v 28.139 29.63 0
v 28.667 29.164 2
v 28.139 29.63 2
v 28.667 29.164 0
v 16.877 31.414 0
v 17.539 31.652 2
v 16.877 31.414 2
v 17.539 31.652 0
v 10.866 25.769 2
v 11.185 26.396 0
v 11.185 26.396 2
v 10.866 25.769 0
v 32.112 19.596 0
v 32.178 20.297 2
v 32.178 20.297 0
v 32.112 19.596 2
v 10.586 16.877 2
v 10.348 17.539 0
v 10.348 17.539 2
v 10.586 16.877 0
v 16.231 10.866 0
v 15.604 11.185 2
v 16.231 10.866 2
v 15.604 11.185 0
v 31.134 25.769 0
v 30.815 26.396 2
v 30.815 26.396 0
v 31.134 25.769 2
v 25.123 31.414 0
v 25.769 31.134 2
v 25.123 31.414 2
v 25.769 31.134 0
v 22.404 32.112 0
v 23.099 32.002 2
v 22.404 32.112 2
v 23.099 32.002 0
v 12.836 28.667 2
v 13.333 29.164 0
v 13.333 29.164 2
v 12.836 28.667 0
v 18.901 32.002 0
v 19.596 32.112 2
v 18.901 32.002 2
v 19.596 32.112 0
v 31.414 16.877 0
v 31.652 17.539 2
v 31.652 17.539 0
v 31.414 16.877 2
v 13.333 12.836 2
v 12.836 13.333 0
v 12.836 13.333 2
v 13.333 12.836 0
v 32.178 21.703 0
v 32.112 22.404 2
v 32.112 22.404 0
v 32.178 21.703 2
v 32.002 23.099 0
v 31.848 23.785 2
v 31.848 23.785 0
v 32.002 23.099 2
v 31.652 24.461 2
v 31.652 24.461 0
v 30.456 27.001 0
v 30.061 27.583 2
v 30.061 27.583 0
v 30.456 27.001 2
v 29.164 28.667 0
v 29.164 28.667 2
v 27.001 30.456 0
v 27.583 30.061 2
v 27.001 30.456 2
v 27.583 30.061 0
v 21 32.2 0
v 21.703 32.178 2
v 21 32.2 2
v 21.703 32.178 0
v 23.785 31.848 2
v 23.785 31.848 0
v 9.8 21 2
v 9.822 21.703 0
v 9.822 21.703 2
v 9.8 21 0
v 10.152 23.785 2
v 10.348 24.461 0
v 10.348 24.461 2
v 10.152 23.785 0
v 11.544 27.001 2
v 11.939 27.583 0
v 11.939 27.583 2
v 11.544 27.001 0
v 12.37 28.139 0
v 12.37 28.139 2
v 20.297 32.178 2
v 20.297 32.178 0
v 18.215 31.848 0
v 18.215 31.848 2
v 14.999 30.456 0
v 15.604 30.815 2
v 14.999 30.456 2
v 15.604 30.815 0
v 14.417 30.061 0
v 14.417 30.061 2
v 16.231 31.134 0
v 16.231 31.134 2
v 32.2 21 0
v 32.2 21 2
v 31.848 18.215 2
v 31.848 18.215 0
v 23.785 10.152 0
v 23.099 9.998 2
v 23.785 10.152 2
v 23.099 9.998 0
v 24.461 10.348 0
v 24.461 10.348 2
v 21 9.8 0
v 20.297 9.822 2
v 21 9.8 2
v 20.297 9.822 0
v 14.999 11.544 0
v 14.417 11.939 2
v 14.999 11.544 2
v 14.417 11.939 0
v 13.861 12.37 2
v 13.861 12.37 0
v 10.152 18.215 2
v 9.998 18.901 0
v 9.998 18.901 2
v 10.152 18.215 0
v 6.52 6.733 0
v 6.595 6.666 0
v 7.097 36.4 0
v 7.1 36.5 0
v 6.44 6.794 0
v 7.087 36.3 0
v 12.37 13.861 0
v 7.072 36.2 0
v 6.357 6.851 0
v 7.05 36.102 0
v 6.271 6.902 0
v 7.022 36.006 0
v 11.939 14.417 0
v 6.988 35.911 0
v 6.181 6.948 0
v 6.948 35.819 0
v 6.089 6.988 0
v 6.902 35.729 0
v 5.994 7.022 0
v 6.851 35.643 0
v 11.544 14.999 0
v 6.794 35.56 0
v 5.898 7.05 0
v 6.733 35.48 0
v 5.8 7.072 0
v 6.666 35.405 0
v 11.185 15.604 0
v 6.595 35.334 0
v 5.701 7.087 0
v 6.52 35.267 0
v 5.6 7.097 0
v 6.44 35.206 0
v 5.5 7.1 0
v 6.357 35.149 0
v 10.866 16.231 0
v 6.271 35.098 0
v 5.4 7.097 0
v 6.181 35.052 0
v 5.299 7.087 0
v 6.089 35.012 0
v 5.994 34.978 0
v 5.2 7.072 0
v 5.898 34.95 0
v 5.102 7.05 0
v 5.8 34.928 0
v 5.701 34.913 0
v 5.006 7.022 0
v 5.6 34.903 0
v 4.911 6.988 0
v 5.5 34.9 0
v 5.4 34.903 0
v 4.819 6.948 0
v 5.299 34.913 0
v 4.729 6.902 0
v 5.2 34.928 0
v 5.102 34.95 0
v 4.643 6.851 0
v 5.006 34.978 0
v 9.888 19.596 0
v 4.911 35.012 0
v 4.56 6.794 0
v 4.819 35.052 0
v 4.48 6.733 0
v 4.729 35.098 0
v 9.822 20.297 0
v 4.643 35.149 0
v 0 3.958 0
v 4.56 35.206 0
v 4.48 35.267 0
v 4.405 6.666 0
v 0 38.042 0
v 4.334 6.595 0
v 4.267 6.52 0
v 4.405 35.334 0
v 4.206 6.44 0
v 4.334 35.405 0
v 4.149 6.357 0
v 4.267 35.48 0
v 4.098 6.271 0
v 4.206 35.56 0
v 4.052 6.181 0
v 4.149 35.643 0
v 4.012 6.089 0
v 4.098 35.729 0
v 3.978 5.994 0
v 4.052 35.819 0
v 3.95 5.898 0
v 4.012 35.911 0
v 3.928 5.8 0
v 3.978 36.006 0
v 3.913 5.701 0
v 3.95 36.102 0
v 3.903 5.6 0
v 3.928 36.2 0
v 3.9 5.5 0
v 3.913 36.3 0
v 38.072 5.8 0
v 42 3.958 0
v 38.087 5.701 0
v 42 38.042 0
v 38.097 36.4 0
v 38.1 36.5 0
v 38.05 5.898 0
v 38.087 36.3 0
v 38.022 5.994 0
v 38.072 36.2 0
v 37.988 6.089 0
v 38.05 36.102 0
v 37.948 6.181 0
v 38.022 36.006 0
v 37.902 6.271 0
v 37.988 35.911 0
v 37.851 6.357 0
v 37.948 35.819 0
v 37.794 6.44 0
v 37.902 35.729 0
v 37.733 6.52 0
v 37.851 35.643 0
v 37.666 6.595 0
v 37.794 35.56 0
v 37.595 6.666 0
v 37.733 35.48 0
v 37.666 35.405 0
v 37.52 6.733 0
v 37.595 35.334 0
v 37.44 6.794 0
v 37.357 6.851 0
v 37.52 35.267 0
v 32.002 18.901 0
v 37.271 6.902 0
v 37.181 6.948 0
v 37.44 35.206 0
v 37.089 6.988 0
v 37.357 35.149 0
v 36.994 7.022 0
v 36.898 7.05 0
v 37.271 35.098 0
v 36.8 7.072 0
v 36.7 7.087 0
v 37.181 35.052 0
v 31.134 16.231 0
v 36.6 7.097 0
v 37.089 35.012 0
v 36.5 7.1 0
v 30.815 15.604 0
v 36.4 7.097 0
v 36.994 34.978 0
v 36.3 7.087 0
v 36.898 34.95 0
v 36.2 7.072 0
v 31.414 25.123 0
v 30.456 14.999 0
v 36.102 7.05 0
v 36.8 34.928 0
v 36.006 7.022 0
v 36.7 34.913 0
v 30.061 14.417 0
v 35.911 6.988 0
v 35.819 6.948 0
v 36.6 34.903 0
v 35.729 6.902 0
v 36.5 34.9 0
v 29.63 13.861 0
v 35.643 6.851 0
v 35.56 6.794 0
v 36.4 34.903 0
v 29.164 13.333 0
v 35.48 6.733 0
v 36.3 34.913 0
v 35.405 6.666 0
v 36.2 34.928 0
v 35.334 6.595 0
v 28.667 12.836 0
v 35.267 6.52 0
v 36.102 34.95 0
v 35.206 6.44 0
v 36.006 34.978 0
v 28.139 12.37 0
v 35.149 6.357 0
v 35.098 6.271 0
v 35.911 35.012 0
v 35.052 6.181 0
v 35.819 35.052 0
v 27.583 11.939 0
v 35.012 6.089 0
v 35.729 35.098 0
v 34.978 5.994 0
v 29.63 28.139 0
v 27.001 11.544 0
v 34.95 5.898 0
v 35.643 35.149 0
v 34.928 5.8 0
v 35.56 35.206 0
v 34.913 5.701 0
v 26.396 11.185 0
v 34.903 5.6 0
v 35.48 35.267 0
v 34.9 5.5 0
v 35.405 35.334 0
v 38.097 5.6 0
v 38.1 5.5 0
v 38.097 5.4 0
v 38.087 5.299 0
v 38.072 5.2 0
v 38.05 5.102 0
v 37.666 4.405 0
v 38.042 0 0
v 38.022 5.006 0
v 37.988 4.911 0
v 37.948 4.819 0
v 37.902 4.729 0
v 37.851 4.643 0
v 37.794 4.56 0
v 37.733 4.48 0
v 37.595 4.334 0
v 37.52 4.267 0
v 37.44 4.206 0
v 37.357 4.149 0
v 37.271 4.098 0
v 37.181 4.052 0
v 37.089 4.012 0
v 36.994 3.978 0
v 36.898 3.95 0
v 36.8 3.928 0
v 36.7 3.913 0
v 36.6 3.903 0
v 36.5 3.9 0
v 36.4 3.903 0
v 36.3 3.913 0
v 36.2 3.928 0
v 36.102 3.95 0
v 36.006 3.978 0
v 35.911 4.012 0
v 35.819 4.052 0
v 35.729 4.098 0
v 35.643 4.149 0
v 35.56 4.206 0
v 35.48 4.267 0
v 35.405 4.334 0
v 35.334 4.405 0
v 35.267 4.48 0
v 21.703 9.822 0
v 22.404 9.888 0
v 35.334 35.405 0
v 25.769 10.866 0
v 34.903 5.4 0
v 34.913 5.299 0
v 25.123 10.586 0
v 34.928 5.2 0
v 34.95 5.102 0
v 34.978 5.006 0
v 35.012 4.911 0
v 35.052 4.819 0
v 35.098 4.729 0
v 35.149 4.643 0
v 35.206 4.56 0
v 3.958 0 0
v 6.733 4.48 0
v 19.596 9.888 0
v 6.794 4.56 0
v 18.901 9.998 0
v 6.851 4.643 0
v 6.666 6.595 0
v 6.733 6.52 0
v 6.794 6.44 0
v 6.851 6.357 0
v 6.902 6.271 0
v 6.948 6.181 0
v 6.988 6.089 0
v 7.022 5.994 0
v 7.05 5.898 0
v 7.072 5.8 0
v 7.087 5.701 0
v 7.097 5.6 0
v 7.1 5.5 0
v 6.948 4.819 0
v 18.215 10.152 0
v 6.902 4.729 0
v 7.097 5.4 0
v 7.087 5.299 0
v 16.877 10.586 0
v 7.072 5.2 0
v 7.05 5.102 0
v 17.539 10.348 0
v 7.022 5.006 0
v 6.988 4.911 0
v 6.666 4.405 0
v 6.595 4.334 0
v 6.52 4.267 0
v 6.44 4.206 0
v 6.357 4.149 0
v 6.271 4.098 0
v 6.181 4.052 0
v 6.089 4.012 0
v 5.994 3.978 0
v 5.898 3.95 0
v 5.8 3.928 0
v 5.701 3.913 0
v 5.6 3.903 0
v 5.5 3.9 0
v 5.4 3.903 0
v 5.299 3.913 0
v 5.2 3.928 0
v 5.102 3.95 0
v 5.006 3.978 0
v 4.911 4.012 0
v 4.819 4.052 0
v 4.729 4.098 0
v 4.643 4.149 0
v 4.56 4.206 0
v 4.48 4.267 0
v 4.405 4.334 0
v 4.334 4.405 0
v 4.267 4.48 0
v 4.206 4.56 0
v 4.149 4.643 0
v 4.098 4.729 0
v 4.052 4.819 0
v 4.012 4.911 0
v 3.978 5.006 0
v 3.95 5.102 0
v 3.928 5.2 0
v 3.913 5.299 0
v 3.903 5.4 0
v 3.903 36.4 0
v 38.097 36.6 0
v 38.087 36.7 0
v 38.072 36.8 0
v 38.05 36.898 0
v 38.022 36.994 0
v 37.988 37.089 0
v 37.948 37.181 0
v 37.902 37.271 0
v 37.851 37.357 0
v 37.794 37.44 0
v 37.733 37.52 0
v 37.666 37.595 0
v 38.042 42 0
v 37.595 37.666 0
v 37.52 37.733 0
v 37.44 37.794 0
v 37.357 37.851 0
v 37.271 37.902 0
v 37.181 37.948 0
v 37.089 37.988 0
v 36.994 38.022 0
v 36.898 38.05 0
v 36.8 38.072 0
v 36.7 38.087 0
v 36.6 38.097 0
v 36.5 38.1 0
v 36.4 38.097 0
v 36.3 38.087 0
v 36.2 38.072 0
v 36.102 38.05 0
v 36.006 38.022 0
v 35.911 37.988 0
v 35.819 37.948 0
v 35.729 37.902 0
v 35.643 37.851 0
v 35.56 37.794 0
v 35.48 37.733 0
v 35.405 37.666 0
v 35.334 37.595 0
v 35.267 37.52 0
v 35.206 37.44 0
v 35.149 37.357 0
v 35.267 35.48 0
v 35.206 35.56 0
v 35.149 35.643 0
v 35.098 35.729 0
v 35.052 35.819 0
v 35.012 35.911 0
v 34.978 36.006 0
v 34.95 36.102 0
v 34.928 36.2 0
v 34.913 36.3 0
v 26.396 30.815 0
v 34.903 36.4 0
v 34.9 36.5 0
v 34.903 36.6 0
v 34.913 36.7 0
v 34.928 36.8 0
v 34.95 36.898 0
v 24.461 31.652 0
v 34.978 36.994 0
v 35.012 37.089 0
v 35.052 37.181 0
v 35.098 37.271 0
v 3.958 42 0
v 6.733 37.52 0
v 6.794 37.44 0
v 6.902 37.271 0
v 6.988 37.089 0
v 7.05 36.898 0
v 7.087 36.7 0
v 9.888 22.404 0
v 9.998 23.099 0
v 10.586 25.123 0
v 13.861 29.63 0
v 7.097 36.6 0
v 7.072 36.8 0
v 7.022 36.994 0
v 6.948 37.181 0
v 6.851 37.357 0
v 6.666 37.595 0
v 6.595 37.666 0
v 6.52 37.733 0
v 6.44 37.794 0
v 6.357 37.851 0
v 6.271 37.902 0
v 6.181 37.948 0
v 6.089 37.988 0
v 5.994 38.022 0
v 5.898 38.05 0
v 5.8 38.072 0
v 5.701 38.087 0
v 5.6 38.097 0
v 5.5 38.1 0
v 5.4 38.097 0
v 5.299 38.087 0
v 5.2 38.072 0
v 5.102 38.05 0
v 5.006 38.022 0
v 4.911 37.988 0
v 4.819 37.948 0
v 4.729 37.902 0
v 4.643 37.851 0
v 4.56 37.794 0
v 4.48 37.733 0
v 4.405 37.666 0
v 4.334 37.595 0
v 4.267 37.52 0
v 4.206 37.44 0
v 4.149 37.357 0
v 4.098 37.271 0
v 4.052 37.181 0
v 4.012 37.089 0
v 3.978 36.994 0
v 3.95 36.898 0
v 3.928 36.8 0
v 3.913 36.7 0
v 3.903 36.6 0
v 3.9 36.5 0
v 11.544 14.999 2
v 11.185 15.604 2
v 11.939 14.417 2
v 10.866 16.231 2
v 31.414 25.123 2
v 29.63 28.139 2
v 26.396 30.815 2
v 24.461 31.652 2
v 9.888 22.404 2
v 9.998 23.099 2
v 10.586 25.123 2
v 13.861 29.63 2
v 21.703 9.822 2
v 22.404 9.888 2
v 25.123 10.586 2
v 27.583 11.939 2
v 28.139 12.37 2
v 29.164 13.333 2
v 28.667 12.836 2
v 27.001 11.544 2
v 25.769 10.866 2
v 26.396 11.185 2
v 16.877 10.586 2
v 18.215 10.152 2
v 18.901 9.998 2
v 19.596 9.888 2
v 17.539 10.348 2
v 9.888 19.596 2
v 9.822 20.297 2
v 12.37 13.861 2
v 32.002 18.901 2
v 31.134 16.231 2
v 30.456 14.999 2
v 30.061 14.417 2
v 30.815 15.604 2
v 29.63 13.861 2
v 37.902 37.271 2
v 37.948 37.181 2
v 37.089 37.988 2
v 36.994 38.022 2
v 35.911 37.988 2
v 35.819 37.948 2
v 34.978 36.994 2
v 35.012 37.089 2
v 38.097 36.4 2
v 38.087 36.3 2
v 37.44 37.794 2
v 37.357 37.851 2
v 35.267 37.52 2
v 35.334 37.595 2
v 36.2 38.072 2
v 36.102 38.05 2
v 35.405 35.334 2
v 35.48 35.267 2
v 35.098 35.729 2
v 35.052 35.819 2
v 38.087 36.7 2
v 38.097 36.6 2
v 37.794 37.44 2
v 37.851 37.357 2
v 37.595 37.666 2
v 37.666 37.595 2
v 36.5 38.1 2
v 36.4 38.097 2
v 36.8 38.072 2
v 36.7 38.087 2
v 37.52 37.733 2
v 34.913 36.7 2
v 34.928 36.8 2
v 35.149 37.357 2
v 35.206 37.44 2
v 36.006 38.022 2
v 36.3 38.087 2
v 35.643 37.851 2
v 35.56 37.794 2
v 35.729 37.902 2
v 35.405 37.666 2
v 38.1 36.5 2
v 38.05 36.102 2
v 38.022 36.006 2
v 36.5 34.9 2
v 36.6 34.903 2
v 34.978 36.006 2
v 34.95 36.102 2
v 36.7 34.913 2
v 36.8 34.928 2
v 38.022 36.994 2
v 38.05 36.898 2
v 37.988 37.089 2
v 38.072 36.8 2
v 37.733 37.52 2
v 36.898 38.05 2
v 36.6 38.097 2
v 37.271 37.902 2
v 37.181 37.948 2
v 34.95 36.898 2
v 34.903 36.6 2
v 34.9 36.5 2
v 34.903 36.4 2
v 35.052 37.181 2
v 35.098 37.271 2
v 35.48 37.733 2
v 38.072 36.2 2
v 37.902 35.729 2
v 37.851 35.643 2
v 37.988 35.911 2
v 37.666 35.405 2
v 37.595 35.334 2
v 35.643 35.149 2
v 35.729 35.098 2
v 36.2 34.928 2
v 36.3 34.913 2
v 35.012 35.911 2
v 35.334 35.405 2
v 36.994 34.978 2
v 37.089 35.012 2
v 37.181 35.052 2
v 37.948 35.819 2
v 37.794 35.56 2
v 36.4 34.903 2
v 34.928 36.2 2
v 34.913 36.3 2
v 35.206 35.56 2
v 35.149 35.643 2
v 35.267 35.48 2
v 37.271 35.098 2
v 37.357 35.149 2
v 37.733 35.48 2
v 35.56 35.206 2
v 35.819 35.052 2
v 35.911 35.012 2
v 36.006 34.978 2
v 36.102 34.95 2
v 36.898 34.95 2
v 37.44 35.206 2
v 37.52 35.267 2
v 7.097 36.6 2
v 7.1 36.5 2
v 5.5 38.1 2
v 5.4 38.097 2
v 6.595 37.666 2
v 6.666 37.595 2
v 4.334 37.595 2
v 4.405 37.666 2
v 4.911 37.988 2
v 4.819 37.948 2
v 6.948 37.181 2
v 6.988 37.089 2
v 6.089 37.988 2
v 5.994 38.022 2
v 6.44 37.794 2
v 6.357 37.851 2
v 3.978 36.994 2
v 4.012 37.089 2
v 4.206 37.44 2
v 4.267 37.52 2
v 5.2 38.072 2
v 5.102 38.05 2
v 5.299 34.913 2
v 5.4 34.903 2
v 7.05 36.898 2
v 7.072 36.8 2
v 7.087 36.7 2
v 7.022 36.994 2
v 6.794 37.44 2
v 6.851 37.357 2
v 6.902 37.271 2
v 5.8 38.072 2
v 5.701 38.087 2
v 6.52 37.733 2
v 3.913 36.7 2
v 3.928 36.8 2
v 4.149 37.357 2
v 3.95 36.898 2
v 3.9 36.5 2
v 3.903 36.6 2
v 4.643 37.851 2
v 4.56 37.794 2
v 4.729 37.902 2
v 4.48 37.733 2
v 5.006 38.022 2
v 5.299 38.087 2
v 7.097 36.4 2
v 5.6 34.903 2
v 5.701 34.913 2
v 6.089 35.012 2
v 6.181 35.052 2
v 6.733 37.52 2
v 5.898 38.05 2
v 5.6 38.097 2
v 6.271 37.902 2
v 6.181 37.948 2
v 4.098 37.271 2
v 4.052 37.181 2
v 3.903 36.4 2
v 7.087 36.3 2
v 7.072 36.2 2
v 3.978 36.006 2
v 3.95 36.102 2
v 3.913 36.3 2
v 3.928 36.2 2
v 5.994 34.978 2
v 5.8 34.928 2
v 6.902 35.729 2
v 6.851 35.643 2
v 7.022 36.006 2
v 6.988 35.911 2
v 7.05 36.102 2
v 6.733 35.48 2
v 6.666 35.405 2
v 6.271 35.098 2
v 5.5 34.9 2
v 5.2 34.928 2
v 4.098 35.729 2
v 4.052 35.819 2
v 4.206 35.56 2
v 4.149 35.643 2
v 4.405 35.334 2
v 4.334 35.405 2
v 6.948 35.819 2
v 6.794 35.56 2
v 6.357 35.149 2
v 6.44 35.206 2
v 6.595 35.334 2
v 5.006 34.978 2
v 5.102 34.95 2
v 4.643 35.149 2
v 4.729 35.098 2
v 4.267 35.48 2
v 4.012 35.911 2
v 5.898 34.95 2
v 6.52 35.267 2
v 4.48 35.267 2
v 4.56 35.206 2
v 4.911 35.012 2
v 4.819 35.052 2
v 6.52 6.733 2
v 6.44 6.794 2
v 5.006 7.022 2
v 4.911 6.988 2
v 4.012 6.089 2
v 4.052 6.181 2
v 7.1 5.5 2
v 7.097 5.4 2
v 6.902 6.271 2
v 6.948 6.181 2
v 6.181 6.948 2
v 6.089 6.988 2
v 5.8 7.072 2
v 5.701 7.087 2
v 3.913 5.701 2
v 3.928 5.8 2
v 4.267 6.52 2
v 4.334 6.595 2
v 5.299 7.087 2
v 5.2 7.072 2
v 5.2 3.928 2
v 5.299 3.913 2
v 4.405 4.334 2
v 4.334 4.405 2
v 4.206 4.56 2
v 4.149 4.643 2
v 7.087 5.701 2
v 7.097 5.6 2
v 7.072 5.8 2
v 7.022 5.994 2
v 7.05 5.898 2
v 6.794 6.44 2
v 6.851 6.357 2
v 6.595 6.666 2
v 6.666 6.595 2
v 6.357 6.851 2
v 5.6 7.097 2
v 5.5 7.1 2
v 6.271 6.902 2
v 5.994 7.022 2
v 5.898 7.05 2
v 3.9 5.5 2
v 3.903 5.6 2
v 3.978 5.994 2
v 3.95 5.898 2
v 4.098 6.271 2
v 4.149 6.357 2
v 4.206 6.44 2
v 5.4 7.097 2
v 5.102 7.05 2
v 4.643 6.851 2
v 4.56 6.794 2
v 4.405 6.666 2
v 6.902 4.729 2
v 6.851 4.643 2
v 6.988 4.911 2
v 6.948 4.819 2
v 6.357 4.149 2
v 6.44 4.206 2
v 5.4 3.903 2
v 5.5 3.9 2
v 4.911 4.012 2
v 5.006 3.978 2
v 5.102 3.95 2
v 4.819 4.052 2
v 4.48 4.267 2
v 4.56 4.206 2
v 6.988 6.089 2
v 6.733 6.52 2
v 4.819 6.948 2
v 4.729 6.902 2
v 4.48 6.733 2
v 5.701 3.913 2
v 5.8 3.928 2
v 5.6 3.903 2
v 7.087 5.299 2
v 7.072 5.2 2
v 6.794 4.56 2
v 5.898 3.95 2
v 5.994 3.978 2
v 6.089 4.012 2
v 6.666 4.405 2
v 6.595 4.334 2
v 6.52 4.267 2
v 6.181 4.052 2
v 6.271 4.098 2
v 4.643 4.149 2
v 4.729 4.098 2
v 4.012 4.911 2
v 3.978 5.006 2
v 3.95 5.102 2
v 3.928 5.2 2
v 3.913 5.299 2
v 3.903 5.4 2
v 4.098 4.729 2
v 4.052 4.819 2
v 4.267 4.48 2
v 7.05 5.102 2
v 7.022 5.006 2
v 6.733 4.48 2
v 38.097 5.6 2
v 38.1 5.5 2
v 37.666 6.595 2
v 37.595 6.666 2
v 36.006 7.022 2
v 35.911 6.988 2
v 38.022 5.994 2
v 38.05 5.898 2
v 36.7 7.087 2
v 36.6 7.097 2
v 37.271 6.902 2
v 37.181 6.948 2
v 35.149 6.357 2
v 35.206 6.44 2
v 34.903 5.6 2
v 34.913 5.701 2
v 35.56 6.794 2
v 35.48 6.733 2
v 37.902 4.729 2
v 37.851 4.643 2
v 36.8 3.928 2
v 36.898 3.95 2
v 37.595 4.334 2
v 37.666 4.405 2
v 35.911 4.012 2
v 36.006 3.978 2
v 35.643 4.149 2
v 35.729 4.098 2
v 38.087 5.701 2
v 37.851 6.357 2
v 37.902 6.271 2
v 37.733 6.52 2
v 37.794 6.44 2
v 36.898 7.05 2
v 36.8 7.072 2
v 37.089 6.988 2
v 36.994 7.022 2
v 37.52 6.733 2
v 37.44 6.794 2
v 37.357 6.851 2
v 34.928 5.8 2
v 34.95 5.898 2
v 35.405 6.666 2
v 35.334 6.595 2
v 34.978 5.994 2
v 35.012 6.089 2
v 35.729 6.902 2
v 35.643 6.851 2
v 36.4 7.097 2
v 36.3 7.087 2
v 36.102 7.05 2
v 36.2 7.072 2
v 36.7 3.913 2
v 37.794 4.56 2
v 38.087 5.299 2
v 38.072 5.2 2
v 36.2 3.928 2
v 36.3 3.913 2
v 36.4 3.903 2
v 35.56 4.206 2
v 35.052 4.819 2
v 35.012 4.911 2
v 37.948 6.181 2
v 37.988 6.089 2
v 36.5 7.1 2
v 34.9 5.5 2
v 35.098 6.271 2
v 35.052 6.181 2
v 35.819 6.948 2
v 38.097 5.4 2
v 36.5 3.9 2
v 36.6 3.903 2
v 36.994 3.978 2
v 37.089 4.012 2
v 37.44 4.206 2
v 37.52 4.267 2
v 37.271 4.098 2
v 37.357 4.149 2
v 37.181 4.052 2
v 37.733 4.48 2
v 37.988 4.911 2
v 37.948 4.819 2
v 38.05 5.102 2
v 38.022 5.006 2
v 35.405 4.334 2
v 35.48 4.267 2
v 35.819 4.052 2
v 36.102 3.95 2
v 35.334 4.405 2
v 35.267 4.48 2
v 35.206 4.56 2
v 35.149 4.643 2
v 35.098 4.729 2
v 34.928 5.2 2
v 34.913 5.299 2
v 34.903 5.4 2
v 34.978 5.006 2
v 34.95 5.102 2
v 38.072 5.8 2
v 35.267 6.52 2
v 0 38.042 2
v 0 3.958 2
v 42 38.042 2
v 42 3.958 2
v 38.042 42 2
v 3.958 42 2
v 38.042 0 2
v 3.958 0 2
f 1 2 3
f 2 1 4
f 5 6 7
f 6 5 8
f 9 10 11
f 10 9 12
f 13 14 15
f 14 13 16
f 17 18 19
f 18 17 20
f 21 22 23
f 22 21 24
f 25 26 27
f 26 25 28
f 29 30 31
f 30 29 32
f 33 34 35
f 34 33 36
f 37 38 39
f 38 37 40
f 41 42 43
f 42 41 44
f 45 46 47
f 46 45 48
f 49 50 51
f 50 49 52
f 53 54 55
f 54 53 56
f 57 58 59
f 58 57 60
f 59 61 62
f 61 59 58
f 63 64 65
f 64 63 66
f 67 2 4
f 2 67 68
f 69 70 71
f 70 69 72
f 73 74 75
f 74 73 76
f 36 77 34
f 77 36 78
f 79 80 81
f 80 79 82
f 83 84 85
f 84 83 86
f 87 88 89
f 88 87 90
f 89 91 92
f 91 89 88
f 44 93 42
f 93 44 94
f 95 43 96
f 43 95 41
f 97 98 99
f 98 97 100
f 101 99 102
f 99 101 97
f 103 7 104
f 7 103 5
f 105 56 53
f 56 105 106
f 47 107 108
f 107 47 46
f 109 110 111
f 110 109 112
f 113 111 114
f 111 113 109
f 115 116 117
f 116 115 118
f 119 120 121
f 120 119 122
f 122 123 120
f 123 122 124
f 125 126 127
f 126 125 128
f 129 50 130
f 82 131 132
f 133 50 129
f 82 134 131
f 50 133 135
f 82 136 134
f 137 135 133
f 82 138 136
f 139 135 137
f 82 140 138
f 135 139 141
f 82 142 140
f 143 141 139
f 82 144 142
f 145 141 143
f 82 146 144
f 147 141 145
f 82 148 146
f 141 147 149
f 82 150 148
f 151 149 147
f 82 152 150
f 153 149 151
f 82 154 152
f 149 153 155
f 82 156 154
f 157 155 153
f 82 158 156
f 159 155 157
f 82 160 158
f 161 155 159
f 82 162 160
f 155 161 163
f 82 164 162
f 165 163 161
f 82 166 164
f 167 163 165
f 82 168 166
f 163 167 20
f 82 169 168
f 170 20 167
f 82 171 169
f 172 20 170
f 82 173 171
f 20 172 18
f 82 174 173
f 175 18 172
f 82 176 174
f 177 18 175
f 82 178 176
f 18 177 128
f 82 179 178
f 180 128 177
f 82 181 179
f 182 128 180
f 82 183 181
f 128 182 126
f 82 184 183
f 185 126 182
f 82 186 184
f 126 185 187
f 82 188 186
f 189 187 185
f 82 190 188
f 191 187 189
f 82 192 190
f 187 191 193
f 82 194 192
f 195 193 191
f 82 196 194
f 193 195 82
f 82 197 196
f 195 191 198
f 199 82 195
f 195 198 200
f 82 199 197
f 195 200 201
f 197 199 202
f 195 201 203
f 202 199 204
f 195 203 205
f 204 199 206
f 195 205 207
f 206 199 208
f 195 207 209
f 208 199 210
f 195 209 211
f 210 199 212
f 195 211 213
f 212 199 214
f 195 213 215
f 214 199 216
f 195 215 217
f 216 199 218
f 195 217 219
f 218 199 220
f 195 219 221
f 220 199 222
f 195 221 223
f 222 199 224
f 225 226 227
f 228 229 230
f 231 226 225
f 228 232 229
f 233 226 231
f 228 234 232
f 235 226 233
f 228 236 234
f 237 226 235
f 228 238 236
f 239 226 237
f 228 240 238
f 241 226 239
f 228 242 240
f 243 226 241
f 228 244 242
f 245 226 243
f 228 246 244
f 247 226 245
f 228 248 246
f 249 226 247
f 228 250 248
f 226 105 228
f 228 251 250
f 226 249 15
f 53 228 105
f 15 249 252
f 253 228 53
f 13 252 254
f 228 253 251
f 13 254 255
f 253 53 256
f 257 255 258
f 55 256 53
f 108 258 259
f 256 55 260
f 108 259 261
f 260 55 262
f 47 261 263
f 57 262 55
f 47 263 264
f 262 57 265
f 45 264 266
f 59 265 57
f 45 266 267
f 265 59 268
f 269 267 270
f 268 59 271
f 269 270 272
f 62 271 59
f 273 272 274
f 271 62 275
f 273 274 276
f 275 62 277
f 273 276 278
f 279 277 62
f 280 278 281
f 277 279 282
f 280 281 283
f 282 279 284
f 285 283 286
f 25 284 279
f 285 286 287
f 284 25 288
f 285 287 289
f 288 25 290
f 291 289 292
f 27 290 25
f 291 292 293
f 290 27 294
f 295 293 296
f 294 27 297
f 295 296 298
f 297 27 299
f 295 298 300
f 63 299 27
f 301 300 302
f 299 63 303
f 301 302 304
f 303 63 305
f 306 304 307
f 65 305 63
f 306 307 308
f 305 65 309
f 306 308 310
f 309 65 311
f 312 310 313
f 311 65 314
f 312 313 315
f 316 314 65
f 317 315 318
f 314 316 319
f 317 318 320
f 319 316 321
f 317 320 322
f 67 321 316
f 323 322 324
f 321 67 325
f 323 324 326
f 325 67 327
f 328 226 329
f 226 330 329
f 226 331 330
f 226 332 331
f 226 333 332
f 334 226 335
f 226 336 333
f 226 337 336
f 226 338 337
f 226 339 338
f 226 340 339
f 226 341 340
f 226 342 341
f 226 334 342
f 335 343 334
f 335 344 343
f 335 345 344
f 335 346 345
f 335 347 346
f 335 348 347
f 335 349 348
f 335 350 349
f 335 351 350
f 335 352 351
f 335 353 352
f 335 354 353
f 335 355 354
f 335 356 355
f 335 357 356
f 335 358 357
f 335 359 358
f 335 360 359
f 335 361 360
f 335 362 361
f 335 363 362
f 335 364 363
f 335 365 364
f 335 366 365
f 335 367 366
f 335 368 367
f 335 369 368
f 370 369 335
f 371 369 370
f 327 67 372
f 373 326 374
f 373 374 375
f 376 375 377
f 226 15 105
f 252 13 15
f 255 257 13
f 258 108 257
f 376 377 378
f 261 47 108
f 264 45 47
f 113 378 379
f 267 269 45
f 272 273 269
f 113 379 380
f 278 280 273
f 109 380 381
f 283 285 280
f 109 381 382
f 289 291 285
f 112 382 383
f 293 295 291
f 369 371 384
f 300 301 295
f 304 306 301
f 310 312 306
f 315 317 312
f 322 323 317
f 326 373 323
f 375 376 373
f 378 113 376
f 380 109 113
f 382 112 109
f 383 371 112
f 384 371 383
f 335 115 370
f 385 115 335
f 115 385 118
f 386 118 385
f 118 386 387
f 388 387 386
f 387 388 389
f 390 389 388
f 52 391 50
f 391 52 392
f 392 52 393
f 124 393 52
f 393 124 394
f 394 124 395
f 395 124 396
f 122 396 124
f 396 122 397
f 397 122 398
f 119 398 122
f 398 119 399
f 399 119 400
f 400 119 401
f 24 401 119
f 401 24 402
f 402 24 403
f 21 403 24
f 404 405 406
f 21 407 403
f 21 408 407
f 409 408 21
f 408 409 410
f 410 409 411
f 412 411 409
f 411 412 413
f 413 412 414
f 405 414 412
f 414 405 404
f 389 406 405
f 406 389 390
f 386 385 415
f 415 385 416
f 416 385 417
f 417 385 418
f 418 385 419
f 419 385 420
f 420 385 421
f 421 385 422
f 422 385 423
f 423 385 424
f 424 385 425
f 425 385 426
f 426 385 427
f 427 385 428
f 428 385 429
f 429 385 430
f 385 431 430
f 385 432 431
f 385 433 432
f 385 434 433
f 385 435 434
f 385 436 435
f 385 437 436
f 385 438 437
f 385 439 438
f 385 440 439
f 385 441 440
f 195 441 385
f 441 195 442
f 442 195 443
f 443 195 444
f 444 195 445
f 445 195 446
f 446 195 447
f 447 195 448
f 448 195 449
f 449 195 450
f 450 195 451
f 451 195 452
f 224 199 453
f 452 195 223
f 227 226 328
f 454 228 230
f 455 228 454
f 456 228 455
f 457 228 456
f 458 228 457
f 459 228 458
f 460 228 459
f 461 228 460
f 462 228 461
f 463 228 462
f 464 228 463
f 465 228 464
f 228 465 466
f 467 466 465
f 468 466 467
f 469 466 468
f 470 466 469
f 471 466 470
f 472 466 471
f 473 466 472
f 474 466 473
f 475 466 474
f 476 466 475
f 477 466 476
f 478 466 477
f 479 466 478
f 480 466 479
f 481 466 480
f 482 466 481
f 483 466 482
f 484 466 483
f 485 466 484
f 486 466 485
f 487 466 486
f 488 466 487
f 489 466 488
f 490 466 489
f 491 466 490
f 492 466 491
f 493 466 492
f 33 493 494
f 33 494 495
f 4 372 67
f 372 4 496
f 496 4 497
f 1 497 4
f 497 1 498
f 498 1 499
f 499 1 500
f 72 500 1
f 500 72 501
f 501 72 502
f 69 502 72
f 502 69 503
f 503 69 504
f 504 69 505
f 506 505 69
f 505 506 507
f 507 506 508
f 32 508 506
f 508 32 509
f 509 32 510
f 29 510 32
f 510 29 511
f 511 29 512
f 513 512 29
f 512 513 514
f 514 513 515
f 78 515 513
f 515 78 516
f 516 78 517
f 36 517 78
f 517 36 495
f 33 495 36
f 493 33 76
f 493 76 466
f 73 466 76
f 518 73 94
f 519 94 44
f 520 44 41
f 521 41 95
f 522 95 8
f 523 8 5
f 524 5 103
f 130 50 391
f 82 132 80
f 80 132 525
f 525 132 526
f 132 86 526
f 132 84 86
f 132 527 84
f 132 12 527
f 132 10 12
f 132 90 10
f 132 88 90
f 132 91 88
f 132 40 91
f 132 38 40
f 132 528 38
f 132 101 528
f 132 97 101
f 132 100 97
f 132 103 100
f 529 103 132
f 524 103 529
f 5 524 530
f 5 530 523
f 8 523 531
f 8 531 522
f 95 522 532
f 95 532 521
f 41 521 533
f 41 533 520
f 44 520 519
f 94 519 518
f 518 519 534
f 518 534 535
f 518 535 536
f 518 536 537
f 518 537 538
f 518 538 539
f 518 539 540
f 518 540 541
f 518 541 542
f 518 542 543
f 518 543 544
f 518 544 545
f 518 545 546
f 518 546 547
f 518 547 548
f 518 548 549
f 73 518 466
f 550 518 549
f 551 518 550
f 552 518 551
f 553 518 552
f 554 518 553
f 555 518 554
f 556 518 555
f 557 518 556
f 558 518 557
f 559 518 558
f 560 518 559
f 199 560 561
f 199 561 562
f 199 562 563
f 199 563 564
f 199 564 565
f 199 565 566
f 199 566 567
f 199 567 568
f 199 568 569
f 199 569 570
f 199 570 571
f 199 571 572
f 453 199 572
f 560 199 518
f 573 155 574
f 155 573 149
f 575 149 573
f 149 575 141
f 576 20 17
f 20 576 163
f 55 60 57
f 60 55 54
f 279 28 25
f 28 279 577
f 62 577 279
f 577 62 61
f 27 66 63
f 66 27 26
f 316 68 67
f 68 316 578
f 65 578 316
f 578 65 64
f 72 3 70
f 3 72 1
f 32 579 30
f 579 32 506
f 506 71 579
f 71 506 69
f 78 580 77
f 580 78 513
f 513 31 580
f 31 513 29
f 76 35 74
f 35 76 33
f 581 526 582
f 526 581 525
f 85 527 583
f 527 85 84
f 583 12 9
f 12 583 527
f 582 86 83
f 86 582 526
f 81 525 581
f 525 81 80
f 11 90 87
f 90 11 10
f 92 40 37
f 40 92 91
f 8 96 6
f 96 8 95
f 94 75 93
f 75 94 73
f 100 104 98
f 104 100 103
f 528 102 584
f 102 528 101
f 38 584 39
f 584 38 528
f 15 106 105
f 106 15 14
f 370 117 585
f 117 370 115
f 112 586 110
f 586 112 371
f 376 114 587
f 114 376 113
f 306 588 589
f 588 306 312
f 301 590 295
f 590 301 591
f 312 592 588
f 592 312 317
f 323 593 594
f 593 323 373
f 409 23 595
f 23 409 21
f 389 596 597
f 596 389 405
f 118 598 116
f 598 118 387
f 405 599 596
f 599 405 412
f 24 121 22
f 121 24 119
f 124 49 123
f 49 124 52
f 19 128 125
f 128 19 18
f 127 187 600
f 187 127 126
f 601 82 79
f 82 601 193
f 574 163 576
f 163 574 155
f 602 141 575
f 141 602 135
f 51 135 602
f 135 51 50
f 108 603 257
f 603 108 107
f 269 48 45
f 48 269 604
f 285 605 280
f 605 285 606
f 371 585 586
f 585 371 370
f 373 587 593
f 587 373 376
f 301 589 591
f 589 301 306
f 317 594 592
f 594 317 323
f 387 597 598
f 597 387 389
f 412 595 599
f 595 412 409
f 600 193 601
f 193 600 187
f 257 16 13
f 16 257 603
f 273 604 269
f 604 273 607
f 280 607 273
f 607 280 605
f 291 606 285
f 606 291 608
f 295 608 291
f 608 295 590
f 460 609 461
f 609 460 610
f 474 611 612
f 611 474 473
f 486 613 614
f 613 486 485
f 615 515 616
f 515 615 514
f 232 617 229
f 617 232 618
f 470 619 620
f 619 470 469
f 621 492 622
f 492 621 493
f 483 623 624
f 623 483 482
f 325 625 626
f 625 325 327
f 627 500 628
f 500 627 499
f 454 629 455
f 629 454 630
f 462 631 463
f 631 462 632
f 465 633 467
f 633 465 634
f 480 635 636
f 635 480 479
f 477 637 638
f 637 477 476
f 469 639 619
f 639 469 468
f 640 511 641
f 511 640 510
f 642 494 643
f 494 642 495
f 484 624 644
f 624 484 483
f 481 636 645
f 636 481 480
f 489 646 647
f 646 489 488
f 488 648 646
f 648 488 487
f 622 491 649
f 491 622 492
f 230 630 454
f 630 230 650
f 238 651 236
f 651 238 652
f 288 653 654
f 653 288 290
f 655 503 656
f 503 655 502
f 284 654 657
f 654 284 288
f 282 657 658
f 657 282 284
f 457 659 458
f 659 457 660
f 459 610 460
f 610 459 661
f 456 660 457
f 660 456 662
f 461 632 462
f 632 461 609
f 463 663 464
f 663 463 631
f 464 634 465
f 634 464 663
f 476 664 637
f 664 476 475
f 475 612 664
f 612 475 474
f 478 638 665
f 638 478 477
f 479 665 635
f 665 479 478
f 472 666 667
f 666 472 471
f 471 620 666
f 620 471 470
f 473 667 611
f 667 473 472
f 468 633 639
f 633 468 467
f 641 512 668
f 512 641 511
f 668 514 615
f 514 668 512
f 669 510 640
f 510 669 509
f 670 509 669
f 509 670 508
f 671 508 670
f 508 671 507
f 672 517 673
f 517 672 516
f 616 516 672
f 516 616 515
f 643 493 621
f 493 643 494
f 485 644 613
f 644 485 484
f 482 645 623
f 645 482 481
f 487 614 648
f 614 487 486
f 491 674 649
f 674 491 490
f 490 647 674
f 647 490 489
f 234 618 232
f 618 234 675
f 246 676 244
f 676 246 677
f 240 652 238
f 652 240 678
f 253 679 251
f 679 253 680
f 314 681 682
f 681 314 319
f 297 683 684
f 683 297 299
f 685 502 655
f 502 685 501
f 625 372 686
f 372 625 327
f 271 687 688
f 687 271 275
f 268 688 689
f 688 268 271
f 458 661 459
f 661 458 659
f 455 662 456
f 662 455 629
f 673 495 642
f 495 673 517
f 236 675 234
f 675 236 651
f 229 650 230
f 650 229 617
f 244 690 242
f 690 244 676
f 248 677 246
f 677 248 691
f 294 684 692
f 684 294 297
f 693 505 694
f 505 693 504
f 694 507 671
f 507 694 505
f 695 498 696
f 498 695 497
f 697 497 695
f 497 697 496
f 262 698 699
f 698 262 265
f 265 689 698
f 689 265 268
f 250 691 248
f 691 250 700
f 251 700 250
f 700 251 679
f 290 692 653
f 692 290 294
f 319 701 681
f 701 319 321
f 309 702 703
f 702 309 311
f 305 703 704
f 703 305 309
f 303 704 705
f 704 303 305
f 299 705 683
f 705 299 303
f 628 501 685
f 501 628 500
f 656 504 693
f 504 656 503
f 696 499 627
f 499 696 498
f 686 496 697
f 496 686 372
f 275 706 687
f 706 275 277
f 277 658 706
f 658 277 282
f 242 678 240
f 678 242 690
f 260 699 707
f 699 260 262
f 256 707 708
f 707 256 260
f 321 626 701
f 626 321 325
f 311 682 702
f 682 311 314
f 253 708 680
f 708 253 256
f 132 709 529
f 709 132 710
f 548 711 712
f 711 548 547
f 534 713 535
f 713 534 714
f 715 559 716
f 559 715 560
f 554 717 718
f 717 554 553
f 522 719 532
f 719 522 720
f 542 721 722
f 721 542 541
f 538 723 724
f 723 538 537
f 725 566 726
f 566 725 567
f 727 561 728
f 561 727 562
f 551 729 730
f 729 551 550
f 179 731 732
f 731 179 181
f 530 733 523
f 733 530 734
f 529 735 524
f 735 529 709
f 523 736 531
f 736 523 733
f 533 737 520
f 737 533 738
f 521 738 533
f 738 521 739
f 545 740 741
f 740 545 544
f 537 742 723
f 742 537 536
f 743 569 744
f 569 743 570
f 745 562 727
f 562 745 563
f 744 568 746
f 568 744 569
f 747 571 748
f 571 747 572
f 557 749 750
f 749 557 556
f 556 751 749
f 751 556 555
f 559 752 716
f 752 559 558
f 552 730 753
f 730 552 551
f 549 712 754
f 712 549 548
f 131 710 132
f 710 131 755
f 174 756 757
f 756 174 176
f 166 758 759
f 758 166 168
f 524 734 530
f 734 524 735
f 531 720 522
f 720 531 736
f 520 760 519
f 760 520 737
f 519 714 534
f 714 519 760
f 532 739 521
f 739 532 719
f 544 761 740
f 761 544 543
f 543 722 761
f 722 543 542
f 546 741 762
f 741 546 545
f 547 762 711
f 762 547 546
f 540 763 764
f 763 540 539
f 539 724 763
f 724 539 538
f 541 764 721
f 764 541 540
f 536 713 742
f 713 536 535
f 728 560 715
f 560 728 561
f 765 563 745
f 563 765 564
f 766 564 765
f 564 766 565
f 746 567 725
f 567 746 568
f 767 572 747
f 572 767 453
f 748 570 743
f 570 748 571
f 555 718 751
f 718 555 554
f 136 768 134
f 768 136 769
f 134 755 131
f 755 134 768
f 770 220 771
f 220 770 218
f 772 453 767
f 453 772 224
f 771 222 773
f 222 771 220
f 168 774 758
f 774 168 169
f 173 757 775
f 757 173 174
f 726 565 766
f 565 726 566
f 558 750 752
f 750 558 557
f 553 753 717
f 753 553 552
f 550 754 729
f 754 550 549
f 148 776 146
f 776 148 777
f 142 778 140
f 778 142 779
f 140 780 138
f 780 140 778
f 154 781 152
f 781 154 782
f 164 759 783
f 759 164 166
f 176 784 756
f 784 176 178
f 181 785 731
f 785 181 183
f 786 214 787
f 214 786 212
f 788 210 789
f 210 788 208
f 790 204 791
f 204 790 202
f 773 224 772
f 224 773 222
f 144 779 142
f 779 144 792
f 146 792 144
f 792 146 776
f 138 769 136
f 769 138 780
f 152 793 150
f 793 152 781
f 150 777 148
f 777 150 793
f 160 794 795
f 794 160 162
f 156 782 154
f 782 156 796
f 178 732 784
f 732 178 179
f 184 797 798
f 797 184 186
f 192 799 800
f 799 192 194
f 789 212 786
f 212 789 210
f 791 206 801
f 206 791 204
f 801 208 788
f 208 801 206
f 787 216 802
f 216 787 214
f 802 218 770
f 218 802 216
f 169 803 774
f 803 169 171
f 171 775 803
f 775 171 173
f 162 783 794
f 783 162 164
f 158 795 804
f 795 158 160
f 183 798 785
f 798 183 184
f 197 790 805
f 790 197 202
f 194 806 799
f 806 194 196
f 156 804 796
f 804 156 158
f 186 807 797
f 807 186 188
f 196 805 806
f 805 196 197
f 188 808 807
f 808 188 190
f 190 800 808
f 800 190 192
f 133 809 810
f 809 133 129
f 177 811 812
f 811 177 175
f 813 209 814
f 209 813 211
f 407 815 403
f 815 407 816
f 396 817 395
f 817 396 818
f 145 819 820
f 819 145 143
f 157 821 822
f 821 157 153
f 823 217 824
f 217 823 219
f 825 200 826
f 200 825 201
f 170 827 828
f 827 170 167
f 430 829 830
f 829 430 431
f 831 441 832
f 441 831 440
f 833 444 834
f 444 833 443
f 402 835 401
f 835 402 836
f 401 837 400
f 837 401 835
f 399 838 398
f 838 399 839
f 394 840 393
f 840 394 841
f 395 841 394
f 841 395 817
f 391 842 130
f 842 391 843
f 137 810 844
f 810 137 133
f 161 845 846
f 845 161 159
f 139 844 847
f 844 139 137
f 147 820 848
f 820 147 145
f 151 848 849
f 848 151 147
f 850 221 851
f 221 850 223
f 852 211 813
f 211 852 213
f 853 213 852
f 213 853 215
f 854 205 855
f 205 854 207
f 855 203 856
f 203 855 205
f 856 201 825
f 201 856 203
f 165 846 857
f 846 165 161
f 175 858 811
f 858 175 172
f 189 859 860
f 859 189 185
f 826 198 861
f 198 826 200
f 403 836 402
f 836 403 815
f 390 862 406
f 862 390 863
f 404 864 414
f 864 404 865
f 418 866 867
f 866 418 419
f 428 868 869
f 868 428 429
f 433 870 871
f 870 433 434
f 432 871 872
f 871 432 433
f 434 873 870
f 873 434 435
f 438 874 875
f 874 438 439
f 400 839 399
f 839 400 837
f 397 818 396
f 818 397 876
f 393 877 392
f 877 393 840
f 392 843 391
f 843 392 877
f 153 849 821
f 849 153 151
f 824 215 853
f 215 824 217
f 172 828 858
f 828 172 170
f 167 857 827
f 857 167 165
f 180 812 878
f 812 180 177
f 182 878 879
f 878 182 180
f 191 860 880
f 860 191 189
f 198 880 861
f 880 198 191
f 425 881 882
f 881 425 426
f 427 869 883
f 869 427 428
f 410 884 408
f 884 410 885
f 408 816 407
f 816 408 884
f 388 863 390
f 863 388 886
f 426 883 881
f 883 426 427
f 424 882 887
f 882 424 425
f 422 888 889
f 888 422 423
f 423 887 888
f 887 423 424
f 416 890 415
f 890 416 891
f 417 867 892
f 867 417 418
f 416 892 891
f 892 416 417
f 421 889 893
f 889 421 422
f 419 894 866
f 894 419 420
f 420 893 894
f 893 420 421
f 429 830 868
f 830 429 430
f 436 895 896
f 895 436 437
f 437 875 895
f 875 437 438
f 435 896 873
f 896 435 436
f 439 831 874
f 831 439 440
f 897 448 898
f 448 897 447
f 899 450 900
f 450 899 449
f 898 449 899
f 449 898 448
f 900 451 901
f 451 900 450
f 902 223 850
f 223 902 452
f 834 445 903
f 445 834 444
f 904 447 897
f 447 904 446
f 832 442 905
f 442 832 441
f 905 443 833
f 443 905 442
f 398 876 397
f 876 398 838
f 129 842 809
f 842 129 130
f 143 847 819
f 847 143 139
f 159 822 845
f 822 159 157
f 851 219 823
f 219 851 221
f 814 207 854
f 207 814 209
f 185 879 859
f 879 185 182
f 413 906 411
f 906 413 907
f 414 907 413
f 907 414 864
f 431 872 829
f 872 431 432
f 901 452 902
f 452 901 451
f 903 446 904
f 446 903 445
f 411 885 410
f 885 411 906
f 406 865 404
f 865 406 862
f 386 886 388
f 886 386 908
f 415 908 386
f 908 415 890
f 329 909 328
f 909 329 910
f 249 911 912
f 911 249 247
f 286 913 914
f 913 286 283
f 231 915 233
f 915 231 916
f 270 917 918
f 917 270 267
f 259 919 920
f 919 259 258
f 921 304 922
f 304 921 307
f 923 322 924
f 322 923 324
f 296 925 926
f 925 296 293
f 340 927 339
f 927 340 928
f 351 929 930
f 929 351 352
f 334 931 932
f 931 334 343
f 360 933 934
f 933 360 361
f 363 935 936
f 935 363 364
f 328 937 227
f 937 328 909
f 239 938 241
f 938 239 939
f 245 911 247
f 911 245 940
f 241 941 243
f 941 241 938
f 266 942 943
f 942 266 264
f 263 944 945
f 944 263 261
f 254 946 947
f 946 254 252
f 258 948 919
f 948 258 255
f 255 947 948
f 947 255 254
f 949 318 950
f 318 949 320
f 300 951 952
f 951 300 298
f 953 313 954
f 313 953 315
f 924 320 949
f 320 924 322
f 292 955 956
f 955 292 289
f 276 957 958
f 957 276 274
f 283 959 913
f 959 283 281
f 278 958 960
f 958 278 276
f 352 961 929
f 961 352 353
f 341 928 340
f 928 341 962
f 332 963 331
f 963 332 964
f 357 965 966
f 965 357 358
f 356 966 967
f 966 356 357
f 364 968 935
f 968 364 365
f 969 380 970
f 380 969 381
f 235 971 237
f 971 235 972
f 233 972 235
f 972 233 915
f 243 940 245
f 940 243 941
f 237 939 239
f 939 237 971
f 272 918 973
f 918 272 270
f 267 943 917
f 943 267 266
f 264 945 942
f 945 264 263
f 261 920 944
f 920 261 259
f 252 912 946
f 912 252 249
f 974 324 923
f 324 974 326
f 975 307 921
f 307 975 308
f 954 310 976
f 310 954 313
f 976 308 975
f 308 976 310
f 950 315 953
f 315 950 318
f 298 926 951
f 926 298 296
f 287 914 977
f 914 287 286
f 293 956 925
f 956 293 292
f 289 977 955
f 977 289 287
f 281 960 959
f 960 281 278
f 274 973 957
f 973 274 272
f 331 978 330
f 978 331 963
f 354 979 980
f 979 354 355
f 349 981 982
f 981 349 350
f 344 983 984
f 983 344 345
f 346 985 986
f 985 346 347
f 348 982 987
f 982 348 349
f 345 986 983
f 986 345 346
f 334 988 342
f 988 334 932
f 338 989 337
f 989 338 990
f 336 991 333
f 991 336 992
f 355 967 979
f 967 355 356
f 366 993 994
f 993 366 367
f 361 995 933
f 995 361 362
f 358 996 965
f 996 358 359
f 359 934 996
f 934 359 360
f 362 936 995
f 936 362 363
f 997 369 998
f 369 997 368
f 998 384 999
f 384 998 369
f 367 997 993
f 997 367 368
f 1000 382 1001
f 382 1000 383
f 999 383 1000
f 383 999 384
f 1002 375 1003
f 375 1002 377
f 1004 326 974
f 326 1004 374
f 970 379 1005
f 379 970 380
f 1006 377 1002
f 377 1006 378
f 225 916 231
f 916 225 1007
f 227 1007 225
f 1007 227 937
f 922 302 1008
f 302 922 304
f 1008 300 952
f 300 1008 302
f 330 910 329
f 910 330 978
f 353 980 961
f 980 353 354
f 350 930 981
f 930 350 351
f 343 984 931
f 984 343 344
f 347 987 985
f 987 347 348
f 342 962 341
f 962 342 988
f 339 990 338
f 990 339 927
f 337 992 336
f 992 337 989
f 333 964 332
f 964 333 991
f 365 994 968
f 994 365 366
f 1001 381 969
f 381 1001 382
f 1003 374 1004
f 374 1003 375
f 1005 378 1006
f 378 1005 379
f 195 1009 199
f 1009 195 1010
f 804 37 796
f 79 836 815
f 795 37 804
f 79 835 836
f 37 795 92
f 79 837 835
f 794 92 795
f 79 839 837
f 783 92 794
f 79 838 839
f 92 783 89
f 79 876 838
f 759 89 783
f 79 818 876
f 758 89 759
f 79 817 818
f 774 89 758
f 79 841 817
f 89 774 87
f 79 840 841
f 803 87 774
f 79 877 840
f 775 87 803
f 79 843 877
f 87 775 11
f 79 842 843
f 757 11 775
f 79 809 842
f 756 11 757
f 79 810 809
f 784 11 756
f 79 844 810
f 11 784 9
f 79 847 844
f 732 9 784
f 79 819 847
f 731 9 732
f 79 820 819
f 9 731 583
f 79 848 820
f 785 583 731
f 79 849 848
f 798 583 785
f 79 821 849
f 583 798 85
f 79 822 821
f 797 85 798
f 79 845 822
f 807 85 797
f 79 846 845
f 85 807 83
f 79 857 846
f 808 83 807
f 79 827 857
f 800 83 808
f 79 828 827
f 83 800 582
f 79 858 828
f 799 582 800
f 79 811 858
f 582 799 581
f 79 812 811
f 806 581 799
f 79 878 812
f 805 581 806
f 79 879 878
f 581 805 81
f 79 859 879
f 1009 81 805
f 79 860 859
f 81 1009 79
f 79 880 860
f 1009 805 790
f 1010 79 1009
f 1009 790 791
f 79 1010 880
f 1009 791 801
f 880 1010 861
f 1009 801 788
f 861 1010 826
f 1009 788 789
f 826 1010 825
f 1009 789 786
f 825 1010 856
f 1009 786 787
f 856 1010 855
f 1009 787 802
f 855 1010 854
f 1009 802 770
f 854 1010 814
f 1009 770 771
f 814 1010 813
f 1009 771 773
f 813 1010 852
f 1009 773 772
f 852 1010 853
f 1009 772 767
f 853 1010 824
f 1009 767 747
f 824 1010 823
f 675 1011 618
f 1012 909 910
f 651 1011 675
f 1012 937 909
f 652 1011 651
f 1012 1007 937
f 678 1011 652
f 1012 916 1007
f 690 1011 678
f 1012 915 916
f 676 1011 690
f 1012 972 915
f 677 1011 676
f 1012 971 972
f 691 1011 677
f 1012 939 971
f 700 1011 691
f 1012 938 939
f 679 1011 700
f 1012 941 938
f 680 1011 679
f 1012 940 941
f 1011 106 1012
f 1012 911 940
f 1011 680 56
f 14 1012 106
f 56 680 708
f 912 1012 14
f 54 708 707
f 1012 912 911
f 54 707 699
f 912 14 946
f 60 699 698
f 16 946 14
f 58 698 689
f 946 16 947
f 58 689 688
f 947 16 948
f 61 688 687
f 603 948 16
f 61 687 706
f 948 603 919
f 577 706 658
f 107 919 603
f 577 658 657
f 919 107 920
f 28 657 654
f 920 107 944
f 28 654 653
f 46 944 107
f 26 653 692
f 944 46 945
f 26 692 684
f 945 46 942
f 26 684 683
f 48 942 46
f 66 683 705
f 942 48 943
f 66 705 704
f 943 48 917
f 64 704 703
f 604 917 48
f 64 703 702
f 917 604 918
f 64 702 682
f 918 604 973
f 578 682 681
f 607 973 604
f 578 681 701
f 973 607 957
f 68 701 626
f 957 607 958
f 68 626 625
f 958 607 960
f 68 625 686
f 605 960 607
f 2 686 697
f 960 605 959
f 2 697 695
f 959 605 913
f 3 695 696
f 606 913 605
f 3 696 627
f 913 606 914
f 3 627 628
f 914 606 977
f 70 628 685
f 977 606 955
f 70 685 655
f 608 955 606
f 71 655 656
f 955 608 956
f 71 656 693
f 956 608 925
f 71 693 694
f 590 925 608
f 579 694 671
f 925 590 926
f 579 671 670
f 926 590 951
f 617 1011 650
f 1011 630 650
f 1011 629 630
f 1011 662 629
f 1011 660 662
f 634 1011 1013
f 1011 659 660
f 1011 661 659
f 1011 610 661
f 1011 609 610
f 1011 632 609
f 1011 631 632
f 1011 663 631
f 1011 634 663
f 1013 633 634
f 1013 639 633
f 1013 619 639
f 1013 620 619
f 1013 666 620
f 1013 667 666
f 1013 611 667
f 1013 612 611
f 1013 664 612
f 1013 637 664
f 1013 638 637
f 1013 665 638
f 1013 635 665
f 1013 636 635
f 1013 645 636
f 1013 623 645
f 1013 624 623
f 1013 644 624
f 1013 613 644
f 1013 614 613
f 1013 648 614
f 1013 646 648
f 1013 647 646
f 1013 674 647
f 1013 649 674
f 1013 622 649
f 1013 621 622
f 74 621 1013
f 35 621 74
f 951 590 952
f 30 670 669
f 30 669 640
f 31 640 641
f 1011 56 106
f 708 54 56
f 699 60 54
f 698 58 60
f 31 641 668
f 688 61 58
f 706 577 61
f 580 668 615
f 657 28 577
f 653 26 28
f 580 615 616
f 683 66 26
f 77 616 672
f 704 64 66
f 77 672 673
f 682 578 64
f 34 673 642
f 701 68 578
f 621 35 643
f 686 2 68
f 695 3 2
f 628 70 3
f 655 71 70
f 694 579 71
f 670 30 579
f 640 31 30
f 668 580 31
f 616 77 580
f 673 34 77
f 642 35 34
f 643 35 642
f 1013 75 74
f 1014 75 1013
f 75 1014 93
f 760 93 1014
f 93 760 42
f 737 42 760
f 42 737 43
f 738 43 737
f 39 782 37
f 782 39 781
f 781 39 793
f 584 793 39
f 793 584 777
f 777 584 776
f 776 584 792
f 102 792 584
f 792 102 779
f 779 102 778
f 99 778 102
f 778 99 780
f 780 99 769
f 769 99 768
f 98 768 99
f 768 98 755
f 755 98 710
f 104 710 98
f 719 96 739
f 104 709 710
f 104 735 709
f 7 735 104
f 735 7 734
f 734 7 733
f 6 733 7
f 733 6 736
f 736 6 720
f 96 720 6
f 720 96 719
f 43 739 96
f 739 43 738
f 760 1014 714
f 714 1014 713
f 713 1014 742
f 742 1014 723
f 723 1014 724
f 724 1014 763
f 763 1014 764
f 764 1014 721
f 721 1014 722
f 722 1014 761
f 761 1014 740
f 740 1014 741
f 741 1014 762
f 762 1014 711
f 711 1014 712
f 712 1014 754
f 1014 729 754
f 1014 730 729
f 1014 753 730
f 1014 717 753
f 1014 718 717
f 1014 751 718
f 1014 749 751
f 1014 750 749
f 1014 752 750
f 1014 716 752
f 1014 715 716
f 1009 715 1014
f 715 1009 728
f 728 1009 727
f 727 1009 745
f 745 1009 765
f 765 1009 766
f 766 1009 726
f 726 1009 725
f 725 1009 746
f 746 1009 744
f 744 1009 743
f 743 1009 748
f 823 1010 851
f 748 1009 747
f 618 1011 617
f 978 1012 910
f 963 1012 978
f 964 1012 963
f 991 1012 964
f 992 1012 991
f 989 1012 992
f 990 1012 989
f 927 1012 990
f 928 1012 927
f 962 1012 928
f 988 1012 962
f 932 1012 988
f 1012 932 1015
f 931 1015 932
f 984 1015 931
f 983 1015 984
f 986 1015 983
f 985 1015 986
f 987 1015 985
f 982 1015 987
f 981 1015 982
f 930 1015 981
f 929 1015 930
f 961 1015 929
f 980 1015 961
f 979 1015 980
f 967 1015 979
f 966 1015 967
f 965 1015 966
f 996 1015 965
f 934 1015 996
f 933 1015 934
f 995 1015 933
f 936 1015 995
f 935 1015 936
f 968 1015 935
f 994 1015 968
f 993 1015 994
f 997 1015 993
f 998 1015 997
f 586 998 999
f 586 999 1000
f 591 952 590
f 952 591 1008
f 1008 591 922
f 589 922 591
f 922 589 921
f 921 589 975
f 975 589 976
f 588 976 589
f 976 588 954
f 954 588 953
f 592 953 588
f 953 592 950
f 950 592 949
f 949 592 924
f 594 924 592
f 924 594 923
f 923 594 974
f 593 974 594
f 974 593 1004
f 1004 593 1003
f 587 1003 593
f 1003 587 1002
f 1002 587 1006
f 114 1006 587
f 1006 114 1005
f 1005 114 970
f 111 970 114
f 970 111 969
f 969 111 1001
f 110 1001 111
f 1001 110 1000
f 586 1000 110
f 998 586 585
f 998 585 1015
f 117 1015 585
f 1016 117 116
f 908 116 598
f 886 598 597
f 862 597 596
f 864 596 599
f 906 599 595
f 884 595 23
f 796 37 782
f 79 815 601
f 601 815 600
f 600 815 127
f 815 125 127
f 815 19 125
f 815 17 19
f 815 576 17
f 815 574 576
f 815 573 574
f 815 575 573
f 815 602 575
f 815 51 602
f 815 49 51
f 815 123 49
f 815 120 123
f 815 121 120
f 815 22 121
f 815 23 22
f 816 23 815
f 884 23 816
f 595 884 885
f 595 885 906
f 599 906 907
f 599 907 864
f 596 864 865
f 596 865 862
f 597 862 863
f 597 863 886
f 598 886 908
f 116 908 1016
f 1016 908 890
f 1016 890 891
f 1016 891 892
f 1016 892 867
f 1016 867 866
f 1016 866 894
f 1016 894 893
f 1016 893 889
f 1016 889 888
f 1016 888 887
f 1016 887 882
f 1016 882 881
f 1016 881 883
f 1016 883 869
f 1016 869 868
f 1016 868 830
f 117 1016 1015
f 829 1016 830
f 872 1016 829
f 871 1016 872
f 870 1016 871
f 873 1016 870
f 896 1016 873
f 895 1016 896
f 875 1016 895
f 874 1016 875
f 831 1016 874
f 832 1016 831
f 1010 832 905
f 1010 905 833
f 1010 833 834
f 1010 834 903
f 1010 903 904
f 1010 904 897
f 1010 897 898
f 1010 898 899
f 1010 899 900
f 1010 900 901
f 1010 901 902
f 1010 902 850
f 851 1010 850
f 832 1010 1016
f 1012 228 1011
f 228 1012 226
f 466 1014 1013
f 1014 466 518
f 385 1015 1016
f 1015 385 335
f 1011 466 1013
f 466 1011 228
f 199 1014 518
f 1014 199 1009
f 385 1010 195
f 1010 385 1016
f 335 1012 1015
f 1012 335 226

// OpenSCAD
hole_r=1.6;

$fn=100;
module nema_mount(){
    cylinder(r=11.2, h=30);
    translate([31/2,31/2,0])cylinder(r=hole_r, h=30);
    translate([-31/2,31/2,0])cylinder(r=hole_r, h=30);
    translate([-31/2,-31/2,0])cylinder(r=hole_r, h=30);
    translate([31/2,-31/2,0])cylinder(r=hole_r, h=30);
    }
    
    
module dd(){    
difference(){
    cube([42,42,2]);
translate([21,21,0])nema_mount();    
    }
    
}
intersection(){
dd();
translate([21,21,0])rotate([0,0,45])cube([53.8,53.8,10], center=true);
}

    
